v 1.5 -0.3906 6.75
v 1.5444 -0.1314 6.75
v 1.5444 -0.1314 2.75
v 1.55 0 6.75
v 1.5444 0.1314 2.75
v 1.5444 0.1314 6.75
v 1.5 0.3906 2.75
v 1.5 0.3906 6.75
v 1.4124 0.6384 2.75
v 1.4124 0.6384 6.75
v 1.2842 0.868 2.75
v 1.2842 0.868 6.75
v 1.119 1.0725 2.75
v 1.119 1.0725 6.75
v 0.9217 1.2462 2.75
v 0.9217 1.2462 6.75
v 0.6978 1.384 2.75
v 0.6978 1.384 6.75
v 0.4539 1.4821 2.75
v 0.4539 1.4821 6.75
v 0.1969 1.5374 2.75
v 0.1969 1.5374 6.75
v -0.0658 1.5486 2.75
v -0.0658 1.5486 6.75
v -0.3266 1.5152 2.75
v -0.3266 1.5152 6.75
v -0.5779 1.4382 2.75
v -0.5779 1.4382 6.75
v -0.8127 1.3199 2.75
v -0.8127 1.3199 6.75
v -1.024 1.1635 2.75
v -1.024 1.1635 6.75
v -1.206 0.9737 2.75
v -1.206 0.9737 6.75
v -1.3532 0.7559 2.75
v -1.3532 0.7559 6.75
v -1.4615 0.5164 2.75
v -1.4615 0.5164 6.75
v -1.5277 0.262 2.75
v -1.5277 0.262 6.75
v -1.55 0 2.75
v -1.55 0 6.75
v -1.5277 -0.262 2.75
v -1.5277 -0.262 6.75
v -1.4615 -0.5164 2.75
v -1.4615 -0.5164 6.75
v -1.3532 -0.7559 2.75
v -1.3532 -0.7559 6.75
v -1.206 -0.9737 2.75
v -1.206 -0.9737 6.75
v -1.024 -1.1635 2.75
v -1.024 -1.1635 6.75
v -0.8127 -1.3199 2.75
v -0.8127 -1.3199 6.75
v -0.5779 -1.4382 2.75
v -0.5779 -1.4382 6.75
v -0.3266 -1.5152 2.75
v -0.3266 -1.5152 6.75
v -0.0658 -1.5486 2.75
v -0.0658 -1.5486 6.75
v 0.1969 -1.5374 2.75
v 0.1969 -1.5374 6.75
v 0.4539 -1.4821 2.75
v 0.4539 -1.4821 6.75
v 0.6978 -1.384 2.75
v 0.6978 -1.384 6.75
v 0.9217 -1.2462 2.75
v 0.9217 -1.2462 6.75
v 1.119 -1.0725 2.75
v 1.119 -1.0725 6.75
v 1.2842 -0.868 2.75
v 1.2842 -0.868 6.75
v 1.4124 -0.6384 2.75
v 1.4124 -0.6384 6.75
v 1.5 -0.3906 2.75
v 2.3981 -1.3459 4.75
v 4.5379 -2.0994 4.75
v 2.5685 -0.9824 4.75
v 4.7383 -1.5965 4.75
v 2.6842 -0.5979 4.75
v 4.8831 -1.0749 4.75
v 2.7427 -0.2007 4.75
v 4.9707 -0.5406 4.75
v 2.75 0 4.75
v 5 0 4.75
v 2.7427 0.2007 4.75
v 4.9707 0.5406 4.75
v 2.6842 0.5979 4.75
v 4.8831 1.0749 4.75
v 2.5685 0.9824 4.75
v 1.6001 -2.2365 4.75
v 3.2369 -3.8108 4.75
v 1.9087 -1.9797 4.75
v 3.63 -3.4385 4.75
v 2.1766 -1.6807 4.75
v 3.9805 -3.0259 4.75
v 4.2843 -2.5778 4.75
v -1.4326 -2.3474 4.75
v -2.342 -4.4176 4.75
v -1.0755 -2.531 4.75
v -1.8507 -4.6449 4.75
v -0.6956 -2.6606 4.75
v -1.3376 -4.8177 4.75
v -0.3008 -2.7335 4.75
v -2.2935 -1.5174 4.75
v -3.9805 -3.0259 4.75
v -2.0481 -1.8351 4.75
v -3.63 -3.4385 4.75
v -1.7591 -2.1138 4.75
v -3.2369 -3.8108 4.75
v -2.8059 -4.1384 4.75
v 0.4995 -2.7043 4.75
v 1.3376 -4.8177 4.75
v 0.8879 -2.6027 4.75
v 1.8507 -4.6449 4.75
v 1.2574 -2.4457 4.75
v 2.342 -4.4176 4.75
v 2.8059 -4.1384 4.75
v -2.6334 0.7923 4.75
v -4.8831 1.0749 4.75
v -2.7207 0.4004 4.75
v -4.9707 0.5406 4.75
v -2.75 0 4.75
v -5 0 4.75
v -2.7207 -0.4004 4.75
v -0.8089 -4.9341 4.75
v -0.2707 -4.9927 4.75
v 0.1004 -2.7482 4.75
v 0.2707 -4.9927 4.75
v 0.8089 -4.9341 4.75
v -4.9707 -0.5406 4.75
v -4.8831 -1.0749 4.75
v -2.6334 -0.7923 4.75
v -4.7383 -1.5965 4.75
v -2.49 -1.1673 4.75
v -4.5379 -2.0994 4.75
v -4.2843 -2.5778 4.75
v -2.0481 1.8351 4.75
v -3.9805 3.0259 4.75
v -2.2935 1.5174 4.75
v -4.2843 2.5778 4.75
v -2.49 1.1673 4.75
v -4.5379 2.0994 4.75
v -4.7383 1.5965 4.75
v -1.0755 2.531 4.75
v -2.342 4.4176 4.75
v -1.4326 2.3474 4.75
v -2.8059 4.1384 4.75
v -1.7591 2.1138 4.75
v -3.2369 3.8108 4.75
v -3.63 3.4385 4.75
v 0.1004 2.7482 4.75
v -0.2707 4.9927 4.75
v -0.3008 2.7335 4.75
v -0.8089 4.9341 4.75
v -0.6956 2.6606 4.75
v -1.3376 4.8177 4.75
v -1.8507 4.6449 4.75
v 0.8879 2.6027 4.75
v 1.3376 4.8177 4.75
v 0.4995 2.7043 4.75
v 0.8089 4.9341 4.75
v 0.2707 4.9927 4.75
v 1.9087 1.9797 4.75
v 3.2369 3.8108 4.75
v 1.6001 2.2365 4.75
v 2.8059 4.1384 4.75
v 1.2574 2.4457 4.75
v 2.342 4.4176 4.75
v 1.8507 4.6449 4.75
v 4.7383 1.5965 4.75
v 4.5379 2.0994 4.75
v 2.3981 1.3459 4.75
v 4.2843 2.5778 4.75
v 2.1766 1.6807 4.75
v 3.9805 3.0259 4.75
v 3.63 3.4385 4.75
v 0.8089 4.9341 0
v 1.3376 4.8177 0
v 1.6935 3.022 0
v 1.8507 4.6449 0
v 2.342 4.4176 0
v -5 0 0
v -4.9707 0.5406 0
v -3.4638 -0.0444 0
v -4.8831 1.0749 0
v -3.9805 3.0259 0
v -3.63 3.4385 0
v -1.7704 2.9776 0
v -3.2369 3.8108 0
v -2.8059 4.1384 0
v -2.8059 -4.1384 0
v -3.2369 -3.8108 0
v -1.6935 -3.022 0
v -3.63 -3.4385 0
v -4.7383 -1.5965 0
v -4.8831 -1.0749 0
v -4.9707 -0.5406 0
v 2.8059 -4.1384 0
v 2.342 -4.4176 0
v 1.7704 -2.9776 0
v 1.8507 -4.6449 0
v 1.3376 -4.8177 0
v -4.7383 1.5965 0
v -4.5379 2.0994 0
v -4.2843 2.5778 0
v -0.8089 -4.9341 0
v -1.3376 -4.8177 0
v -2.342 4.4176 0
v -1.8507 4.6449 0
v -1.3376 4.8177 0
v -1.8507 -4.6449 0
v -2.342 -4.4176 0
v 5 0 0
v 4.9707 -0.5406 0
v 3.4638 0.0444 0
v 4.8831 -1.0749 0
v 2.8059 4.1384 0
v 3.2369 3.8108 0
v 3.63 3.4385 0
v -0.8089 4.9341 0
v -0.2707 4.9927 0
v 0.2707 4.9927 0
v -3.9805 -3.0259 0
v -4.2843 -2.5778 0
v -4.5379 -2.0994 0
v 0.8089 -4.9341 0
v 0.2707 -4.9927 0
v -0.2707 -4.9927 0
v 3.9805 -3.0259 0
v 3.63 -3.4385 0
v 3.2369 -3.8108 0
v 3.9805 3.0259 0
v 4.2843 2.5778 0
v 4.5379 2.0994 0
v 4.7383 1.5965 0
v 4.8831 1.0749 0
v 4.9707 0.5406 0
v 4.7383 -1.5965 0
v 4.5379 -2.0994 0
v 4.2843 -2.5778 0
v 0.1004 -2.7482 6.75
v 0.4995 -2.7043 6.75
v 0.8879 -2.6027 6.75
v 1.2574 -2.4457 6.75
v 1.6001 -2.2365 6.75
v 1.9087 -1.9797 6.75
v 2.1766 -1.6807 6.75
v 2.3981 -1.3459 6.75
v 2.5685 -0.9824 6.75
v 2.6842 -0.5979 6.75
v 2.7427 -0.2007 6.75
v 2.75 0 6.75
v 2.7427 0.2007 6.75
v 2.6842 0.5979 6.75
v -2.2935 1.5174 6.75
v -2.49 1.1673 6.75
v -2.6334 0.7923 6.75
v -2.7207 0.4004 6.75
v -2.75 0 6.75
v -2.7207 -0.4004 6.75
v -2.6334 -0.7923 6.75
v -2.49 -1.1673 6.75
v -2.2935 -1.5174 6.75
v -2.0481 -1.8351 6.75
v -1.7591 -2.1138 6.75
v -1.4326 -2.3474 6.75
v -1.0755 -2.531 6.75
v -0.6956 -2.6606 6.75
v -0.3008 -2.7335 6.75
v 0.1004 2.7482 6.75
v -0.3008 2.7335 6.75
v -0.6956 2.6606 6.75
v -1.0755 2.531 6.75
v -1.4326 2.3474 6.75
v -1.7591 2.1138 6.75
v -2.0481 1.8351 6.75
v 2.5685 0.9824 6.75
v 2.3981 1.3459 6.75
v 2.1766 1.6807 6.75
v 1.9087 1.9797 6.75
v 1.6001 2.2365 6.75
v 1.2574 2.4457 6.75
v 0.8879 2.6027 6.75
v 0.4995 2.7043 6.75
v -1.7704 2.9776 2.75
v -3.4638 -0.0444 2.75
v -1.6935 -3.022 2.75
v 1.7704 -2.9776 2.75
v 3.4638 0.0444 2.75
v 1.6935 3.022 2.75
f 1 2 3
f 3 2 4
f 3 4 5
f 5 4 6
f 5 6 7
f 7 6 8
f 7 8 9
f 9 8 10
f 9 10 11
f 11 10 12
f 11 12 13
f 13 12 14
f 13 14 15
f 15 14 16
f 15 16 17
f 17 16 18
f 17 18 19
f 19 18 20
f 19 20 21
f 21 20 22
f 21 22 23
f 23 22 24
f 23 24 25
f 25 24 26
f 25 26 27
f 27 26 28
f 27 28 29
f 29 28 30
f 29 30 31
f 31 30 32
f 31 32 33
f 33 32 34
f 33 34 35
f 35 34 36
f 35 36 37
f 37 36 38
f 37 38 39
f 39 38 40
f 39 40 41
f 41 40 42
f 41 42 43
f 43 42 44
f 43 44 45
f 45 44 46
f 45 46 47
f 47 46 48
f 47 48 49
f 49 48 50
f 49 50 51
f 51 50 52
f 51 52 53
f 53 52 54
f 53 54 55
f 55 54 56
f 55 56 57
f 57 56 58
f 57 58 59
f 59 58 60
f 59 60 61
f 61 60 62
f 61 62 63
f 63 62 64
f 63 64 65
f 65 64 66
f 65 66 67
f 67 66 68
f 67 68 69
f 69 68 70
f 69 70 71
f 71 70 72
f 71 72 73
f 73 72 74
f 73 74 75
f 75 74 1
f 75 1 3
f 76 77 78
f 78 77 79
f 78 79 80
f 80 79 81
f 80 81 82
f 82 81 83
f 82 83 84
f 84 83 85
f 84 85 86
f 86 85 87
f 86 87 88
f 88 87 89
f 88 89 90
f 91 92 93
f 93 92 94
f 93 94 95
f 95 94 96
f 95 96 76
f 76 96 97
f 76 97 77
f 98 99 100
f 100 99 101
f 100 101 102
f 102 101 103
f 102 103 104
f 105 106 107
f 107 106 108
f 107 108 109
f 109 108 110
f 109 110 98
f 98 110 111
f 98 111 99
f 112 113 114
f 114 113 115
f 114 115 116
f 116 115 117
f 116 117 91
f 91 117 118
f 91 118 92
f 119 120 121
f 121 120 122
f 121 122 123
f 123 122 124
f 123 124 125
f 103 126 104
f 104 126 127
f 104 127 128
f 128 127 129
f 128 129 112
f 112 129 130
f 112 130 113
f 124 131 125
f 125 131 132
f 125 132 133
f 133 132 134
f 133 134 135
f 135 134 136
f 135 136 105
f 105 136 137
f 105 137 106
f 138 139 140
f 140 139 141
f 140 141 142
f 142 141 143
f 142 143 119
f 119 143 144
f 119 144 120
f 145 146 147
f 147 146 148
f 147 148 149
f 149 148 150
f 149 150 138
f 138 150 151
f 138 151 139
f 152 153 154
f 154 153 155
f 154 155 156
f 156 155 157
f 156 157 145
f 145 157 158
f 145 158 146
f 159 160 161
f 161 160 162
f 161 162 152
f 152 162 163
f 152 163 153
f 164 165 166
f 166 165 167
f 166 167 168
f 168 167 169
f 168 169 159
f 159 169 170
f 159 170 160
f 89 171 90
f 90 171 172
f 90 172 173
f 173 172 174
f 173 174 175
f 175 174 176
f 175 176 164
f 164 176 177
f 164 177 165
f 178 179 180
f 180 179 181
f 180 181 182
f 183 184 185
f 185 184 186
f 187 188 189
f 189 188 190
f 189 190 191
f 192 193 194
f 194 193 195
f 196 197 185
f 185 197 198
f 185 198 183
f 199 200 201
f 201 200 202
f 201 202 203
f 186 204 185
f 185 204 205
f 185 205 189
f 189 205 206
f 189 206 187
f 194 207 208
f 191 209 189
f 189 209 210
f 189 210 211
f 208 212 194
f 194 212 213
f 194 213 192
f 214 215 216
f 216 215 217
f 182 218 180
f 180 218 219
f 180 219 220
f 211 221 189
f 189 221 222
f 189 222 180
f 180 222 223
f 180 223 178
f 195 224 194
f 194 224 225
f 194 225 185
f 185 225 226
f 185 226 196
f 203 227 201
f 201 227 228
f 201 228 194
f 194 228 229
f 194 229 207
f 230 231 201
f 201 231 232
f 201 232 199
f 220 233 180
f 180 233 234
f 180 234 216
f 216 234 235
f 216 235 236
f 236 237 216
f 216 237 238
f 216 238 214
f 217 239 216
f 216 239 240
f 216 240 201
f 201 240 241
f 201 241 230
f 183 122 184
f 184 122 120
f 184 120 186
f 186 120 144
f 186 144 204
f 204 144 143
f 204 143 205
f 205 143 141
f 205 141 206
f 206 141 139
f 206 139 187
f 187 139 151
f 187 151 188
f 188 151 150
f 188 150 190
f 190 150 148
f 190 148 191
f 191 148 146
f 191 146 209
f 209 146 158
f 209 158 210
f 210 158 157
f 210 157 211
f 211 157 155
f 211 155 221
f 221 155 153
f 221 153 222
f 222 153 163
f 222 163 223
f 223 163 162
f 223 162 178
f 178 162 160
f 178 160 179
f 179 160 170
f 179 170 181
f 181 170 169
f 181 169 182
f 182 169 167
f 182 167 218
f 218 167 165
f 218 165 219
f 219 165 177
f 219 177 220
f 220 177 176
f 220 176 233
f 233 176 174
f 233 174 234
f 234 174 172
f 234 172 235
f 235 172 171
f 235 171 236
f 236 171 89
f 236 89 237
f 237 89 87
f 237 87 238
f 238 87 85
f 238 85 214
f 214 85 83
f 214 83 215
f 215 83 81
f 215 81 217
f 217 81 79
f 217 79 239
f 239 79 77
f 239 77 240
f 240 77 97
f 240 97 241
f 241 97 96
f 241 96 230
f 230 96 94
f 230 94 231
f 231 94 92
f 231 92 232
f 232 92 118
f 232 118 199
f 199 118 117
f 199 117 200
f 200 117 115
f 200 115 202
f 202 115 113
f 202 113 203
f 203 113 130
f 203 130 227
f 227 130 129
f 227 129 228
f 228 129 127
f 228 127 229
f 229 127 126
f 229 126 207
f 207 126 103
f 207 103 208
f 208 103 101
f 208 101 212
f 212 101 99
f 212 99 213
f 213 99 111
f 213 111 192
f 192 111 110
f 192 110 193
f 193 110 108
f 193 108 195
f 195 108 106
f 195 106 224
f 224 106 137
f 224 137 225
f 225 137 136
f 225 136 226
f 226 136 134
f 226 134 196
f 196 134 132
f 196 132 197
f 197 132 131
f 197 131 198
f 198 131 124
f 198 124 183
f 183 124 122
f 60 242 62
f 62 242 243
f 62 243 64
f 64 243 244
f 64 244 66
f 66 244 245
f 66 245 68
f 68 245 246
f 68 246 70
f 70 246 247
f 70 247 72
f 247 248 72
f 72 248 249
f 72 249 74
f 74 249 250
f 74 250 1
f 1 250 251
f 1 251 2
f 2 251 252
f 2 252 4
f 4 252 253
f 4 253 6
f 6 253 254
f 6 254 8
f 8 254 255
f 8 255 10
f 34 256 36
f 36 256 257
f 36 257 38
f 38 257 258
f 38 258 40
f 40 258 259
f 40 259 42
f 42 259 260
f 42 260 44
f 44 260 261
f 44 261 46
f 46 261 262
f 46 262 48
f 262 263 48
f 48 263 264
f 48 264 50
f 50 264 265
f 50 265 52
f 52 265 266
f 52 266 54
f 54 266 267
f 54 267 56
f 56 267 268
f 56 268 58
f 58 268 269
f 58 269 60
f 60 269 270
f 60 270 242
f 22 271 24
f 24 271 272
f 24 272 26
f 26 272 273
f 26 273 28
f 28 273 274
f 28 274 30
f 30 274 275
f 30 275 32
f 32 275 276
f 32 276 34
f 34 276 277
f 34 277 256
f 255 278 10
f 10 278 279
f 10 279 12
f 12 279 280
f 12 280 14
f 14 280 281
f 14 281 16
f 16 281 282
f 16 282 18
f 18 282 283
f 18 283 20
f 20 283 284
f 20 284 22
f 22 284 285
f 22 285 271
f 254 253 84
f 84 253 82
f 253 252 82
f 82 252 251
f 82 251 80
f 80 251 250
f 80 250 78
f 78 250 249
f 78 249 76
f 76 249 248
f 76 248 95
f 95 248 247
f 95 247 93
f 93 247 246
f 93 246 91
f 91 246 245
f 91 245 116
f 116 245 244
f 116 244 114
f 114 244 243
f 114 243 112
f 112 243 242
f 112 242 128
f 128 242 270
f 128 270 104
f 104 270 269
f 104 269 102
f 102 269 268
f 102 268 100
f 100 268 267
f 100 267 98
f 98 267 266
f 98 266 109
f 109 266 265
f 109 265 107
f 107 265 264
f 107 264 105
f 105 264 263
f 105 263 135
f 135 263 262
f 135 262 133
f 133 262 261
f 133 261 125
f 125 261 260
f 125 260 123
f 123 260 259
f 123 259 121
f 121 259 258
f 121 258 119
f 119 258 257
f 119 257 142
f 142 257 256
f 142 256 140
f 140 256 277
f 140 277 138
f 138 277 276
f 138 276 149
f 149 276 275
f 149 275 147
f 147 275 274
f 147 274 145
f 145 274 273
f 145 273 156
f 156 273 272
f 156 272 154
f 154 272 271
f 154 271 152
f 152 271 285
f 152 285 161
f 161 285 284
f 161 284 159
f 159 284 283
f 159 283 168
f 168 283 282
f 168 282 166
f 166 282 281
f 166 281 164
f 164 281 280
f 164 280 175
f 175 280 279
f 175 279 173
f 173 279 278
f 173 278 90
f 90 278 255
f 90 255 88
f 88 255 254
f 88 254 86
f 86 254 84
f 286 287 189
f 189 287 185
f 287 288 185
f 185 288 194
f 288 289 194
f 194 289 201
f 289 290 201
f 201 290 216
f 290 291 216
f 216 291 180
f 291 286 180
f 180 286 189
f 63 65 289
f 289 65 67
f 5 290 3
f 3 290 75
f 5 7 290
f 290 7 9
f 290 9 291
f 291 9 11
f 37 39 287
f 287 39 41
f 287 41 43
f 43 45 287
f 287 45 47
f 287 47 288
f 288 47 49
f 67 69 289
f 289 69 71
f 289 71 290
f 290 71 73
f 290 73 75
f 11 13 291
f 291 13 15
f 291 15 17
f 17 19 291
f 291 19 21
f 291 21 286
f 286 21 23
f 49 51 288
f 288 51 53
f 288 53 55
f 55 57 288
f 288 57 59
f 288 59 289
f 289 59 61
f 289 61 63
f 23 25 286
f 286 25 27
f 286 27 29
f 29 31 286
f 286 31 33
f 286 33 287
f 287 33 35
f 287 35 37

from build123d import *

# Parameters (mm, degrees)
SKETCH_1_R          = 5
SKETCH_1_R_2        = 1.55
EXTRUDE_1_DEPTH     = 4.75
SKETCH_2_R          = 2.75
SKETCH_2_R_2        = 1.55
EXTRUDE_2_DEPTH     = 2
CUT_EXTRUDE_1_DEPTH = 2.75


with BuildPart() as part:
    # 草图1 → 凸台-拉伸1 (new body)
    with BuildSketch(Plane.XY):
        Circle(SKETCH_1_R)
        Circle(SKETCH_1_R_2, mode=Mode.SUBTRACT)
    extrude(amount=EXTRUDE_1_DEPTH)

    # 草图2 → 凸台-拉伸2 (add)
    with BuildSketch(Plane.XY.offset(4.75)):
        Circle(SKETCH_2_R)
        Circle(SKETCH_2_R_2, mode=Mode.SUBTRACT)
    extrude(amount=EXTRUDE_2_DEPTH)

    # 草图3 → 切除-拉伸1 (cut)
    with BuildSketch(Plane(origin=(0, 0, 0), x_dir=(-1, 0, 0), z_dir=(0, 0, -1))):
        Polygon((1.770357817, 2.977554903), (-1.693459279, 3.021952295), (-3.463817096, 0.044397392), (-1.770357817, -2.977554903), (1.693459279, -3.021952295), (3.463817096, -0.044397392), align=None)
    extrude(amount=-CUT_EXTRUDE_1_DEPTH, mode=Mode.SUBTRACT)


solid = part.part
